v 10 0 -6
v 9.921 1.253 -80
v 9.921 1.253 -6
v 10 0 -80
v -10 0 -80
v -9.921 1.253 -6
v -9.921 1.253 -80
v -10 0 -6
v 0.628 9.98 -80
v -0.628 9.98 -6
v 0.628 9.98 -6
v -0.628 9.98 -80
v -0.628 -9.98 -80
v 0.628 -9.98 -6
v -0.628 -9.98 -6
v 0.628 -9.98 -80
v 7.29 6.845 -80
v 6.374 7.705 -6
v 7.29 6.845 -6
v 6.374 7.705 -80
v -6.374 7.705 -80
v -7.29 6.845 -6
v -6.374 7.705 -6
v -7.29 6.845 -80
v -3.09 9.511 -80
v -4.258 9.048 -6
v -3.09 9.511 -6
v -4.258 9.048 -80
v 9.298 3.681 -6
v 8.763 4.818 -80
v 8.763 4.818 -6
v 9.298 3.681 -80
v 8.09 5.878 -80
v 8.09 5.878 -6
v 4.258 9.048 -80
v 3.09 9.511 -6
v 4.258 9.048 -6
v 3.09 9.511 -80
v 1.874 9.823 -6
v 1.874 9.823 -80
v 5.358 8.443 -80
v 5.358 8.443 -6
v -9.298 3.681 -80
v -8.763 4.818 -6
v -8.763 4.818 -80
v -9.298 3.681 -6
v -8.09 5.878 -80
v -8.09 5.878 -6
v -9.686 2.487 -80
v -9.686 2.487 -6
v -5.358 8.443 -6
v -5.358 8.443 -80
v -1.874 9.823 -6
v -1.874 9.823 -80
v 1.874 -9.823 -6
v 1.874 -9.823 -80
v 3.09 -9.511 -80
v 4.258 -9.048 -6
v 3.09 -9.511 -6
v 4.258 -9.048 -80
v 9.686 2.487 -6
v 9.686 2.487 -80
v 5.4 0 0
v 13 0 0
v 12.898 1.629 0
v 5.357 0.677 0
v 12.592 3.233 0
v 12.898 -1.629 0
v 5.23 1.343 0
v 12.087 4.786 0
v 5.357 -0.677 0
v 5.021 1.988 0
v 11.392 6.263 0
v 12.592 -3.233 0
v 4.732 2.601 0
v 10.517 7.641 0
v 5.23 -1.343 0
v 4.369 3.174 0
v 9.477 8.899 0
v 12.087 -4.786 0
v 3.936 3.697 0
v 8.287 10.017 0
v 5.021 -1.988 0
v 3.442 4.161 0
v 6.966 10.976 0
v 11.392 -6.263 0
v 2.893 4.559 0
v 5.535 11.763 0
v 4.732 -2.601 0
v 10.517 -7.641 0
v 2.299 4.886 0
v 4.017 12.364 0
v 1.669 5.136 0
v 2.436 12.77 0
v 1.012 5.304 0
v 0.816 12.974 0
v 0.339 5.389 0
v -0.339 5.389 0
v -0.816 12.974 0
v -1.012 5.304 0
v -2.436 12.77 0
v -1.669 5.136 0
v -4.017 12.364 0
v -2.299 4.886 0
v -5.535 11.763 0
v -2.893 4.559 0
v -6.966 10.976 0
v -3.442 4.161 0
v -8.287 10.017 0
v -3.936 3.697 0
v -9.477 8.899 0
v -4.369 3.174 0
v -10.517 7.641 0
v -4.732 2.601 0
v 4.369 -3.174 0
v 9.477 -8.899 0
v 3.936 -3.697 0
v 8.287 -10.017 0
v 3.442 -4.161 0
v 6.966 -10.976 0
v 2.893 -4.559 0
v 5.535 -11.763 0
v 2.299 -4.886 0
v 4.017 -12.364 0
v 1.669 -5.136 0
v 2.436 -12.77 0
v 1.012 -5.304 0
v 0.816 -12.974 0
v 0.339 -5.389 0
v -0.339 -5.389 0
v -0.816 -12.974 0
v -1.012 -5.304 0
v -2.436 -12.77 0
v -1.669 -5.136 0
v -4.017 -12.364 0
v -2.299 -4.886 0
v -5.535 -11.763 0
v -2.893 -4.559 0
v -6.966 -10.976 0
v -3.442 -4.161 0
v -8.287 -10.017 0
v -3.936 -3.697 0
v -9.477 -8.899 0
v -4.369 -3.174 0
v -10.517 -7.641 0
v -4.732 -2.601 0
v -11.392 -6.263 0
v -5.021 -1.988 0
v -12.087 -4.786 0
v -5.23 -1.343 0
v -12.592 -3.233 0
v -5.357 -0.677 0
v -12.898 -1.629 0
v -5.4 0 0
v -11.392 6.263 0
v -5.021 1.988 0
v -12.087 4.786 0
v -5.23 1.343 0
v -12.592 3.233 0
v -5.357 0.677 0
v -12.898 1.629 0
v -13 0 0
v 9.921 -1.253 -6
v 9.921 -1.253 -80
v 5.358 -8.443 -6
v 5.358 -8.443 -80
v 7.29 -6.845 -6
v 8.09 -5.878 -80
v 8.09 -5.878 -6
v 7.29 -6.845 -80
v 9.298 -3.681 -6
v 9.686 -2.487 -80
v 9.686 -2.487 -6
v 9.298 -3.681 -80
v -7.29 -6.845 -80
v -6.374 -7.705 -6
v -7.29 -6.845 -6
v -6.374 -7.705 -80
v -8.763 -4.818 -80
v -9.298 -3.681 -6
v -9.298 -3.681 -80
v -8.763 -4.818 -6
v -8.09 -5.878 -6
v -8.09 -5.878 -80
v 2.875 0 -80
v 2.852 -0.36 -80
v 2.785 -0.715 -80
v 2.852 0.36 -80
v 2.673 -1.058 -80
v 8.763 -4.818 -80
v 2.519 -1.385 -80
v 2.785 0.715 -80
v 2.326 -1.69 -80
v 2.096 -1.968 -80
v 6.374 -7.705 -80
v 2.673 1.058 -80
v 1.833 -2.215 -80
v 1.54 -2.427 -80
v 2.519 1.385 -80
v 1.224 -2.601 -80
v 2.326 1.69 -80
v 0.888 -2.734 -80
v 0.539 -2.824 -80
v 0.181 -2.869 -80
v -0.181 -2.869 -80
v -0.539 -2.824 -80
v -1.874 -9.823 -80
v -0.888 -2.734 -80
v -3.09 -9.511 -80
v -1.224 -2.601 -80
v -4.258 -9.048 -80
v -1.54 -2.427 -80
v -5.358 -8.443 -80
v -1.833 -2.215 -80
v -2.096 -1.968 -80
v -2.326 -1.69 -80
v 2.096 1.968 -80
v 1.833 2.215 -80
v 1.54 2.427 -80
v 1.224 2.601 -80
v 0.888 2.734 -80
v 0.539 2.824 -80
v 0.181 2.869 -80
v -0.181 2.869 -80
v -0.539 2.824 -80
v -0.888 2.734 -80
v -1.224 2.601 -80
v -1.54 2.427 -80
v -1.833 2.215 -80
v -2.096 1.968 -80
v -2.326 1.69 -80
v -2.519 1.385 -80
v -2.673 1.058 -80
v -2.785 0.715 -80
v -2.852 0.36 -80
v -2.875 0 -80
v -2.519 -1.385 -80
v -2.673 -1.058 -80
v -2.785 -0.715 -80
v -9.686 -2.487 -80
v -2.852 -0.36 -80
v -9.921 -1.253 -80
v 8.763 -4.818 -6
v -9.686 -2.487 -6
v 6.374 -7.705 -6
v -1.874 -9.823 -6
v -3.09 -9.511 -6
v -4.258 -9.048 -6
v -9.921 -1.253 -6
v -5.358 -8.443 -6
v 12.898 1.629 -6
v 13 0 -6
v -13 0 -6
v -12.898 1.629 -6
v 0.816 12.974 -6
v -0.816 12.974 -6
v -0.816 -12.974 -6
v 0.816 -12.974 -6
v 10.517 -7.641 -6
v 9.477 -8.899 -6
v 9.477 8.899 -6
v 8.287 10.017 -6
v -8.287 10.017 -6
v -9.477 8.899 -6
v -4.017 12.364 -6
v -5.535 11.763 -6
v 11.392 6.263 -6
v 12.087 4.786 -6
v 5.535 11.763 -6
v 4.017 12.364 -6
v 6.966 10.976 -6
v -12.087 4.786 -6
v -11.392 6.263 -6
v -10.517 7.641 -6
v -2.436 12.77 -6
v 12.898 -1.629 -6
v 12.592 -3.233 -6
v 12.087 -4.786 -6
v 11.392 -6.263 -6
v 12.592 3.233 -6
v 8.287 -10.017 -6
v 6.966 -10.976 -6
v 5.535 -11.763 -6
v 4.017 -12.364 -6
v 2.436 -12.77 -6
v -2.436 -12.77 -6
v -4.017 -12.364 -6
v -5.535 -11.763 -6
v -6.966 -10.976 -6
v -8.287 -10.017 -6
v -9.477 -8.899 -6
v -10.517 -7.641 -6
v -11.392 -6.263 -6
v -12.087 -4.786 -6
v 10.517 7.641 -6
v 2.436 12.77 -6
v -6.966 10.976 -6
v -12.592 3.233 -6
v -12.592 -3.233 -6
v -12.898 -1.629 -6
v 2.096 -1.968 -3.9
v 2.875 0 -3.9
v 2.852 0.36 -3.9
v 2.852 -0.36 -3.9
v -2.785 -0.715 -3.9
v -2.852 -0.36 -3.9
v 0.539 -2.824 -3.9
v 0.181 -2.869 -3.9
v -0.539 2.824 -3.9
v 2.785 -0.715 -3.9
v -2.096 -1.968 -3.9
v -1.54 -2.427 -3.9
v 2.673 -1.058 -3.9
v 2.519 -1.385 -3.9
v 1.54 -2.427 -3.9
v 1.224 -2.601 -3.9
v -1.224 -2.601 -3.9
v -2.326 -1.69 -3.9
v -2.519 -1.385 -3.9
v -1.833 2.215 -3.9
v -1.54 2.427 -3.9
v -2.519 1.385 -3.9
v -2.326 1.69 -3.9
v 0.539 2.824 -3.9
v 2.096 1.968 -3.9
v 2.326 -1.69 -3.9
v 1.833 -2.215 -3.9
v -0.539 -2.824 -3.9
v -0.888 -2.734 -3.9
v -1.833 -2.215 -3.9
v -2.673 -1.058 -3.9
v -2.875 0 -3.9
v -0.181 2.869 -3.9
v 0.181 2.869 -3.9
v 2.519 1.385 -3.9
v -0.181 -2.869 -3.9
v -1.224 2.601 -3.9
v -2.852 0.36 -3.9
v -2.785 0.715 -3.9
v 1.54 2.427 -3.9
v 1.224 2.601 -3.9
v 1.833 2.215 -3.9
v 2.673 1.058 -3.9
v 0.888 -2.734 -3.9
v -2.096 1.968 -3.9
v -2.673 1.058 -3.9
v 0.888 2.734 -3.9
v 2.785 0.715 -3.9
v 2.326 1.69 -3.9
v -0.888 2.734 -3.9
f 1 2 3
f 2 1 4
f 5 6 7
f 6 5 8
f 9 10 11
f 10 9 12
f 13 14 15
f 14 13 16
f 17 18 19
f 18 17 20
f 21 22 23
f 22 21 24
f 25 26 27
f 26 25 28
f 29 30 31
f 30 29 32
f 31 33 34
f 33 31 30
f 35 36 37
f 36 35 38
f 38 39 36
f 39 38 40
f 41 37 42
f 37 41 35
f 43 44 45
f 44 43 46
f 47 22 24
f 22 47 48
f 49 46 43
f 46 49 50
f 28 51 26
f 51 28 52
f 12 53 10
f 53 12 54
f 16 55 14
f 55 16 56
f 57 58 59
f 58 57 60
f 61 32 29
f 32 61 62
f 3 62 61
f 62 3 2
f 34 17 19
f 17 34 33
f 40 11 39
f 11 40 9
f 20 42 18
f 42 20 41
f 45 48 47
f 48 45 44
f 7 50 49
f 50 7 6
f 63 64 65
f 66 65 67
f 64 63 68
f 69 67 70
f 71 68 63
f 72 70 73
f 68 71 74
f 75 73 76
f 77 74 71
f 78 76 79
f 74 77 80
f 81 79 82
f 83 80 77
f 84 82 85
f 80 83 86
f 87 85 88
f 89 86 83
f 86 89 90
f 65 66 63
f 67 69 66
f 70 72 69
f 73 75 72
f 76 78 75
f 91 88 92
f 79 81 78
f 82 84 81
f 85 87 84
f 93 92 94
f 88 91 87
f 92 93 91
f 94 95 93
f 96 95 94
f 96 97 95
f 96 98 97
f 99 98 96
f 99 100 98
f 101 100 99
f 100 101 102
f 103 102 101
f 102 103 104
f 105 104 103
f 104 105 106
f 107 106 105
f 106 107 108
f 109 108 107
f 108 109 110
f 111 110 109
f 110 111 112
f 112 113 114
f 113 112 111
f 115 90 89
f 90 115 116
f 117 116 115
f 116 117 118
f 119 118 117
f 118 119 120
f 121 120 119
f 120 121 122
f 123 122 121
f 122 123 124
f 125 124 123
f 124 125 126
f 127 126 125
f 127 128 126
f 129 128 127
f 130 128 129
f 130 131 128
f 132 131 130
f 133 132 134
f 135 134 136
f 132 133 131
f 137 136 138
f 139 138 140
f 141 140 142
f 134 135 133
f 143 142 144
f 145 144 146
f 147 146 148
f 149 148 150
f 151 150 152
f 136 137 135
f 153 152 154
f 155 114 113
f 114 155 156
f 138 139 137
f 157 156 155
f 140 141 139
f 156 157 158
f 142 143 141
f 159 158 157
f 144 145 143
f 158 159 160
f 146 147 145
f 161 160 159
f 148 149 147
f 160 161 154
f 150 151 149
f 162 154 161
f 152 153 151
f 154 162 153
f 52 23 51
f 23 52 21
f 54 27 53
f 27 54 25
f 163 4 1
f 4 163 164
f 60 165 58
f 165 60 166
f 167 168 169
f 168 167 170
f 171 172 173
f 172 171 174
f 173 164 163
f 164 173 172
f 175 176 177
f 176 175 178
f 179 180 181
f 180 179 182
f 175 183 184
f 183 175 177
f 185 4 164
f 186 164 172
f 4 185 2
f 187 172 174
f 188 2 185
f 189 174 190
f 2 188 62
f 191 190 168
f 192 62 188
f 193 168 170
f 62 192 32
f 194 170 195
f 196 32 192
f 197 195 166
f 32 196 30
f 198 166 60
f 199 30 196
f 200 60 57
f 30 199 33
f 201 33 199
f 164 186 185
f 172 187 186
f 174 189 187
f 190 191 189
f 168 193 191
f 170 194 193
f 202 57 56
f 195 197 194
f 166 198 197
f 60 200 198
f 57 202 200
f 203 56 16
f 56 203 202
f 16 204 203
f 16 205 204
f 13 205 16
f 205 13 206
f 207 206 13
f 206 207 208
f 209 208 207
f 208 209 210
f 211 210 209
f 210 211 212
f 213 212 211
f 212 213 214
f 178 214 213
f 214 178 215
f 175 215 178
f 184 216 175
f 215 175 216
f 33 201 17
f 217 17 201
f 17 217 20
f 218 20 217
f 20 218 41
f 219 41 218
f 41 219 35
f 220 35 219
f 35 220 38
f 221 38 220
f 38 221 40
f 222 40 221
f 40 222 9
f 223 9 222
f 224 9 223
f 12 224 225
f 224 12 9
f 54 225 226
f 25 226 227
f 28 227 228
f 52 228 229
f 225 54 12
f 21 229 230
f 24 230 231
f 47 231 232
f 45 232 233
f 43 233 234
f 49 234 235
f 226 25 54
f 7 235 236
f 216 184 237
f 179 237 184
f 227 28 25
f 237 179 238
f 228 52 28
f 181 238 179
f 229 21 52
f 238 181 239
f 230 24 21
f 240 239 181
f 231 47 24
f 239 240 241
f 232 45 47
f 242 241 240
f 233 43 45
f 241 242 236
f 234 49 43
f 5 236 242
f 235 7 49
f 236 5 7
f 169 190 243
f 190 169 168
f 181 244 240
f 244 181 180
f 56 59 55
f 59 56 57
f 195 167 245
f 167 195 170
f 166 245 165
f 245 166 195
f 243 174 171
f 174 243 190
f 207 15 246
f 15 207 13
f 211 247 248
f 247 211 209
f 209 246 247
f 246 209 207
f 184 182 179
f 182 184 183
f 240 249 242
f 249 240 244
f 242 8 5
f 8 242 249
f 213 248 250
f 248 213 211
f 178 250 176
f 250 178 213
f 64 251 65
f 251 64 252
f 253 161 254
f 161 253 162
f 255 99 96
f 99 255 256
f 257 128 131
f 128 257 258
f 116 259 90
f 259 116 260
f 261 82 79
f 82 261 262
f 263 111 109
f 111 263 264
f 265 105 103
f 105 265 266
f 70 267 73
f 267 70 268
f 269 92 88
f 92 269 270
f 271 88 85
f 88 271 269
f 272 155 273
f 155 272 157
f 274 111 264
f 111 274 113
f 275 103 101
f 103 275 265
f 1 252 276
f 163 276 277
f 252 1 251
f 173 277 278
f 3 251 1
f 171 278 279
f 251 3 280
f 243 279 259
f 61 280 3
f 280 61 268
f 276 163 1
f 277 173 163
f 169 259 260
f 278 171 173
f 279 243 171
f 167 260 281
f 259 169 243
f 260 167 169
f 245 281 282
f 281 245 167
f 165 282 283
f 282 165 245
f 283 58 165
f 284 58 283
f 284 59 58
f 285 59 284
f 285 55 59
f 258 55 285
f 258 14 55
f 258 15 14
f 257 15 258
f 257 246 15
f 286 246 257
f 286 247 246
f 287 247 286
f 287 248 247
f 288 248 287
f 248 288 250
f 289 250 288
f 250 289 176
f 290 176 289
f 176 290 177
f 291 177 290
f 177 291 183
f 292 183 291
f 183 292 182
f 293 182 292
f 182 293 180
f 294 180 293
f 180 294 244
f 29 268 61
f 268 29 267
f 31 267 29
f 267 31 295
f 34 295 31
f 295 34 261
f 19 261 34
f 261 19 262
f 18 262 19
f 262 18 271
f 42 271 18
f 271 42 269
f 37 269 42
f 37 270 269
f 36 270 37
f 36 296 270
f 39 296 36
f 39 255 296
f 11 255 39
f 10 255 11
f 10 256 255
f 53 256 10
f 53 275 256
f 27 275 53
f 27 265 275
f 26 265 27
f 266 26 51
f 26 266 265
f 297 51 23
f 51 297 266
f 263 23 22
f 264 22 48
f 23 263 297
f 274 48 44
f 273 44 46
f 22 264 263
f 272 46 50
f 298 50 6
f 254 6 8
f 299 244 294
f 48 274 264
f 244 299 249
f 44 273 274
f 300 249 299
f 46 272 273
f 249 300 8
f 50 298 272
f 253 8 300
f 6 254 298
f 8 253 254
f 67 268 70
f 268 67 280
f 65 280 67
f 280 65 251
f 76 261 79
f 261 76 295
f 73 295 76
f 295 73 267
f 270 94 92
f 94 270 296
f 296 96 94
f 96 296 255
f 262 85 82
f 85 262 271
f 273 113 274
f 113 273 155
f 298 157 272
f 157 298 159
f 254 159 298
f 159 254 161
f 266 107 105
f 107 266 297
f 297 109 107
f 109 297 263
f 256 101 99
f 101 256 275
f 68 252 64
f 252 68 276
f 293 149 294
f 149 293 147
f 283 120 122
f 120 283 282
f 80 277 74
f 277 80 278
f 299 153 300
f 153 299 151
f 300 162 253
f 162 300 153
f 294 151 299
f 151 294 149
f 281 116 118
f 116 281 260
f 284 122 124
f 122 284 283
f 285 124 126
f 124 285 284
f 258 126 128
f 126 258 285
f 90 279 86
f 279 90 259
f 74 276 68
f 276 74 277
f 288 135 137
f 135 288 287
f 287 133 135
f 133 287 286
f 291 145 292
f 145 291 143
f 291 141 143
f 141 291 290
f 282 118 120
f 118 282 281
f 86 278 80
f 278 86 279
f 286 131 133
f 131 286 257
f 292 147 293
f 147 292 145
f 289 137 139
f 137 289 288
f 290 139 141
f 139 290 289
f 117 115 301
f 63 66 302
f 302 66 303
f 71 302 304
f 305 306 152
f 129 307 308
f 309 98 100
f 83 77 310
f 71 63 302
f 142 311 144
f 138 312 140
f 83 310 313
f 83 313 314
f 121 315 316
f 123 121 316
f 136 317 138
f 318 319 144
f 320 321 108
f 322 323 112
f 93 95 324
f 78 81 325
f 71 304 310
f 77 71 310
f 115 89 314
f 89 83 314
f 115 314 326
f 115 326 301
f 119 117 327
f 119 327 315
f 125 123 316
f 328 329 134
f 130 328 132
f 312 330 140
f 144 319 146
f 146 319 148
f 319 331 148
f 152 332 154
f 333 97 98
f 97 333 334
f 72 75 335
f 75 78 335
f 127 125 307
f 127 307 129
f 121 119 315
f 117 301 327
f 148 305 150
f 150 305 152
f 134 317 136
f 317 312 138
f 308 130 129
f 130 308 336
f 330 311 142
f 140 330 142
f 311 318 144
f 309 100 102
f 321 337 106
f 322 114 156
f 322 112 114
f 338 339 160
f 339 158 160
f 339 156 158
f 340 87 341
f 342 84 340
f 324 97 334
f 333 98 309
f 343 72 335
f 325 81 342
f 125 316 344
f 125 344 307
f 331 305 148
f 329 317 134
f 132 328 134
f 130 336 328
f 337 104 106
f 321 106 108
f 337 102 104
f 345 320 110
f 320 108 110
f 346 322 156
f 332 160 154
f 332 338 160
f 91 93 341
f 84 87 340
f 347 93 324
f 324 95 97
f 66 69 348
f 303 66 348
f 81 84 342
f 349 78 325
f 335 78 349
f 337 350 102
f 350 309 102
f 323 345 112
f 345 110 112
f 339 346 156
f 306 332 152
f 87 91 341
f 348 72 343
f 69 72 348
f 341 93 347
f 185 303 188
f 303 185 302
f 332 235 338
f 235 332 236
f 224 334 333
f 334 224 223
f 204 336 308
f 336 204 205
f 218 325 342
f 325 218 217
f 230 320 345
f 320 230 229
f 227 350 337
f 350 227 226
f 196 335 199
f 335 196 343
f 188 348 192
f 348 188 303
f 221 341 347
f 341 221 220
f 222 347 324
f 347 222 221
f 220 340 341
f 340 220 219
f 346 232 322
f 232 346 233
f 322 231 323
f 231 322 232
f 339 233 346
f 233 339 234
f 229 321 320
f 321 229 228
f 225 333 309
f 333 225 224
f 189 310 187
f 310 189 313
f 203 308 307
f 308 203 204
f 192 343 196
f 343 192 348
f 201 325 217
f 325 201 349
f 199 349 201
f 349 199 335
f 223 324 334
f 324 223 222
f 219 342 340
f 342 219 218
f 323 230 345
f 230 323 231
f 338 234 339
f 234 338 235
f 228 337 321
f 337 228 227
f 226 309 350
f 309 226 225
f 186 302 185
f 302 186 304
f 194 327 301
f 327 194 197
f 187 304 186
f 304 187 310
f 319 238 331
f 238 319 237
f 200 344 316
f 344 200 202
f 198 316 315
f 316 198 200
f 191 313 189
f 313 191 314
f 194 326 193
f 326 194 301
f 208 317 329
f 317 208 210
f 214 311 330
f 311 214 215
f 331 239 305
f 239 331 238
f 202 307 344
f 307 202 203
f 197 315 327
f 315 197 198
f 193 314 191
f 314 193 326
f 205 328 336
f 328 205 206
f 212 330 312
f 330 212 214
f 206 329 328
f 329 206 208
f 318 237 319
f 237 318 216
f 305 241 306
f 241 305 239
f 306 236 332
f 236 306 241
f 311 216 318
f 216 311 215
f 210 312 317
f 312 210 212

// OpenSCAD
$fn = 50;


difference() {
	union() {
		translate(v = [0, 0, -80.0000000000]) {
			cylinder(h = 80, r = 10.0000000000);
		}
		translate(v = [0, 0, -6.0000000000]) {
			cylinder(h = 6, r = 13.0000000000);
		}
	}
	union() {
		translate(v = [0, 0, 0]) {
			rotate(a = [0, 0, 0]) {
				difference() {
					union() {
						#translate(v = [0, 0, -80.0000000000]) {
							cylinder(h = 80, r = 2.6000000000);
						}
						#translate(v = [0, 0, -3.9000000000]) {
							cylinder(h = 3.9000000000, r = 10.0000000000, r1 = 2.8750000000, r2 = 5.4000000000);
						}
						#translate(v = [0, 0, -80.0000000000]) {
							cylinder(h = 80, r = 2.8750000000);
						}
						#translate(v = [0, 0, -80.0000000000]) {
							cylinder(h = 80, r = 2.6000000000);
						}
					}
					union();
				}
			}
		}
	}
}
